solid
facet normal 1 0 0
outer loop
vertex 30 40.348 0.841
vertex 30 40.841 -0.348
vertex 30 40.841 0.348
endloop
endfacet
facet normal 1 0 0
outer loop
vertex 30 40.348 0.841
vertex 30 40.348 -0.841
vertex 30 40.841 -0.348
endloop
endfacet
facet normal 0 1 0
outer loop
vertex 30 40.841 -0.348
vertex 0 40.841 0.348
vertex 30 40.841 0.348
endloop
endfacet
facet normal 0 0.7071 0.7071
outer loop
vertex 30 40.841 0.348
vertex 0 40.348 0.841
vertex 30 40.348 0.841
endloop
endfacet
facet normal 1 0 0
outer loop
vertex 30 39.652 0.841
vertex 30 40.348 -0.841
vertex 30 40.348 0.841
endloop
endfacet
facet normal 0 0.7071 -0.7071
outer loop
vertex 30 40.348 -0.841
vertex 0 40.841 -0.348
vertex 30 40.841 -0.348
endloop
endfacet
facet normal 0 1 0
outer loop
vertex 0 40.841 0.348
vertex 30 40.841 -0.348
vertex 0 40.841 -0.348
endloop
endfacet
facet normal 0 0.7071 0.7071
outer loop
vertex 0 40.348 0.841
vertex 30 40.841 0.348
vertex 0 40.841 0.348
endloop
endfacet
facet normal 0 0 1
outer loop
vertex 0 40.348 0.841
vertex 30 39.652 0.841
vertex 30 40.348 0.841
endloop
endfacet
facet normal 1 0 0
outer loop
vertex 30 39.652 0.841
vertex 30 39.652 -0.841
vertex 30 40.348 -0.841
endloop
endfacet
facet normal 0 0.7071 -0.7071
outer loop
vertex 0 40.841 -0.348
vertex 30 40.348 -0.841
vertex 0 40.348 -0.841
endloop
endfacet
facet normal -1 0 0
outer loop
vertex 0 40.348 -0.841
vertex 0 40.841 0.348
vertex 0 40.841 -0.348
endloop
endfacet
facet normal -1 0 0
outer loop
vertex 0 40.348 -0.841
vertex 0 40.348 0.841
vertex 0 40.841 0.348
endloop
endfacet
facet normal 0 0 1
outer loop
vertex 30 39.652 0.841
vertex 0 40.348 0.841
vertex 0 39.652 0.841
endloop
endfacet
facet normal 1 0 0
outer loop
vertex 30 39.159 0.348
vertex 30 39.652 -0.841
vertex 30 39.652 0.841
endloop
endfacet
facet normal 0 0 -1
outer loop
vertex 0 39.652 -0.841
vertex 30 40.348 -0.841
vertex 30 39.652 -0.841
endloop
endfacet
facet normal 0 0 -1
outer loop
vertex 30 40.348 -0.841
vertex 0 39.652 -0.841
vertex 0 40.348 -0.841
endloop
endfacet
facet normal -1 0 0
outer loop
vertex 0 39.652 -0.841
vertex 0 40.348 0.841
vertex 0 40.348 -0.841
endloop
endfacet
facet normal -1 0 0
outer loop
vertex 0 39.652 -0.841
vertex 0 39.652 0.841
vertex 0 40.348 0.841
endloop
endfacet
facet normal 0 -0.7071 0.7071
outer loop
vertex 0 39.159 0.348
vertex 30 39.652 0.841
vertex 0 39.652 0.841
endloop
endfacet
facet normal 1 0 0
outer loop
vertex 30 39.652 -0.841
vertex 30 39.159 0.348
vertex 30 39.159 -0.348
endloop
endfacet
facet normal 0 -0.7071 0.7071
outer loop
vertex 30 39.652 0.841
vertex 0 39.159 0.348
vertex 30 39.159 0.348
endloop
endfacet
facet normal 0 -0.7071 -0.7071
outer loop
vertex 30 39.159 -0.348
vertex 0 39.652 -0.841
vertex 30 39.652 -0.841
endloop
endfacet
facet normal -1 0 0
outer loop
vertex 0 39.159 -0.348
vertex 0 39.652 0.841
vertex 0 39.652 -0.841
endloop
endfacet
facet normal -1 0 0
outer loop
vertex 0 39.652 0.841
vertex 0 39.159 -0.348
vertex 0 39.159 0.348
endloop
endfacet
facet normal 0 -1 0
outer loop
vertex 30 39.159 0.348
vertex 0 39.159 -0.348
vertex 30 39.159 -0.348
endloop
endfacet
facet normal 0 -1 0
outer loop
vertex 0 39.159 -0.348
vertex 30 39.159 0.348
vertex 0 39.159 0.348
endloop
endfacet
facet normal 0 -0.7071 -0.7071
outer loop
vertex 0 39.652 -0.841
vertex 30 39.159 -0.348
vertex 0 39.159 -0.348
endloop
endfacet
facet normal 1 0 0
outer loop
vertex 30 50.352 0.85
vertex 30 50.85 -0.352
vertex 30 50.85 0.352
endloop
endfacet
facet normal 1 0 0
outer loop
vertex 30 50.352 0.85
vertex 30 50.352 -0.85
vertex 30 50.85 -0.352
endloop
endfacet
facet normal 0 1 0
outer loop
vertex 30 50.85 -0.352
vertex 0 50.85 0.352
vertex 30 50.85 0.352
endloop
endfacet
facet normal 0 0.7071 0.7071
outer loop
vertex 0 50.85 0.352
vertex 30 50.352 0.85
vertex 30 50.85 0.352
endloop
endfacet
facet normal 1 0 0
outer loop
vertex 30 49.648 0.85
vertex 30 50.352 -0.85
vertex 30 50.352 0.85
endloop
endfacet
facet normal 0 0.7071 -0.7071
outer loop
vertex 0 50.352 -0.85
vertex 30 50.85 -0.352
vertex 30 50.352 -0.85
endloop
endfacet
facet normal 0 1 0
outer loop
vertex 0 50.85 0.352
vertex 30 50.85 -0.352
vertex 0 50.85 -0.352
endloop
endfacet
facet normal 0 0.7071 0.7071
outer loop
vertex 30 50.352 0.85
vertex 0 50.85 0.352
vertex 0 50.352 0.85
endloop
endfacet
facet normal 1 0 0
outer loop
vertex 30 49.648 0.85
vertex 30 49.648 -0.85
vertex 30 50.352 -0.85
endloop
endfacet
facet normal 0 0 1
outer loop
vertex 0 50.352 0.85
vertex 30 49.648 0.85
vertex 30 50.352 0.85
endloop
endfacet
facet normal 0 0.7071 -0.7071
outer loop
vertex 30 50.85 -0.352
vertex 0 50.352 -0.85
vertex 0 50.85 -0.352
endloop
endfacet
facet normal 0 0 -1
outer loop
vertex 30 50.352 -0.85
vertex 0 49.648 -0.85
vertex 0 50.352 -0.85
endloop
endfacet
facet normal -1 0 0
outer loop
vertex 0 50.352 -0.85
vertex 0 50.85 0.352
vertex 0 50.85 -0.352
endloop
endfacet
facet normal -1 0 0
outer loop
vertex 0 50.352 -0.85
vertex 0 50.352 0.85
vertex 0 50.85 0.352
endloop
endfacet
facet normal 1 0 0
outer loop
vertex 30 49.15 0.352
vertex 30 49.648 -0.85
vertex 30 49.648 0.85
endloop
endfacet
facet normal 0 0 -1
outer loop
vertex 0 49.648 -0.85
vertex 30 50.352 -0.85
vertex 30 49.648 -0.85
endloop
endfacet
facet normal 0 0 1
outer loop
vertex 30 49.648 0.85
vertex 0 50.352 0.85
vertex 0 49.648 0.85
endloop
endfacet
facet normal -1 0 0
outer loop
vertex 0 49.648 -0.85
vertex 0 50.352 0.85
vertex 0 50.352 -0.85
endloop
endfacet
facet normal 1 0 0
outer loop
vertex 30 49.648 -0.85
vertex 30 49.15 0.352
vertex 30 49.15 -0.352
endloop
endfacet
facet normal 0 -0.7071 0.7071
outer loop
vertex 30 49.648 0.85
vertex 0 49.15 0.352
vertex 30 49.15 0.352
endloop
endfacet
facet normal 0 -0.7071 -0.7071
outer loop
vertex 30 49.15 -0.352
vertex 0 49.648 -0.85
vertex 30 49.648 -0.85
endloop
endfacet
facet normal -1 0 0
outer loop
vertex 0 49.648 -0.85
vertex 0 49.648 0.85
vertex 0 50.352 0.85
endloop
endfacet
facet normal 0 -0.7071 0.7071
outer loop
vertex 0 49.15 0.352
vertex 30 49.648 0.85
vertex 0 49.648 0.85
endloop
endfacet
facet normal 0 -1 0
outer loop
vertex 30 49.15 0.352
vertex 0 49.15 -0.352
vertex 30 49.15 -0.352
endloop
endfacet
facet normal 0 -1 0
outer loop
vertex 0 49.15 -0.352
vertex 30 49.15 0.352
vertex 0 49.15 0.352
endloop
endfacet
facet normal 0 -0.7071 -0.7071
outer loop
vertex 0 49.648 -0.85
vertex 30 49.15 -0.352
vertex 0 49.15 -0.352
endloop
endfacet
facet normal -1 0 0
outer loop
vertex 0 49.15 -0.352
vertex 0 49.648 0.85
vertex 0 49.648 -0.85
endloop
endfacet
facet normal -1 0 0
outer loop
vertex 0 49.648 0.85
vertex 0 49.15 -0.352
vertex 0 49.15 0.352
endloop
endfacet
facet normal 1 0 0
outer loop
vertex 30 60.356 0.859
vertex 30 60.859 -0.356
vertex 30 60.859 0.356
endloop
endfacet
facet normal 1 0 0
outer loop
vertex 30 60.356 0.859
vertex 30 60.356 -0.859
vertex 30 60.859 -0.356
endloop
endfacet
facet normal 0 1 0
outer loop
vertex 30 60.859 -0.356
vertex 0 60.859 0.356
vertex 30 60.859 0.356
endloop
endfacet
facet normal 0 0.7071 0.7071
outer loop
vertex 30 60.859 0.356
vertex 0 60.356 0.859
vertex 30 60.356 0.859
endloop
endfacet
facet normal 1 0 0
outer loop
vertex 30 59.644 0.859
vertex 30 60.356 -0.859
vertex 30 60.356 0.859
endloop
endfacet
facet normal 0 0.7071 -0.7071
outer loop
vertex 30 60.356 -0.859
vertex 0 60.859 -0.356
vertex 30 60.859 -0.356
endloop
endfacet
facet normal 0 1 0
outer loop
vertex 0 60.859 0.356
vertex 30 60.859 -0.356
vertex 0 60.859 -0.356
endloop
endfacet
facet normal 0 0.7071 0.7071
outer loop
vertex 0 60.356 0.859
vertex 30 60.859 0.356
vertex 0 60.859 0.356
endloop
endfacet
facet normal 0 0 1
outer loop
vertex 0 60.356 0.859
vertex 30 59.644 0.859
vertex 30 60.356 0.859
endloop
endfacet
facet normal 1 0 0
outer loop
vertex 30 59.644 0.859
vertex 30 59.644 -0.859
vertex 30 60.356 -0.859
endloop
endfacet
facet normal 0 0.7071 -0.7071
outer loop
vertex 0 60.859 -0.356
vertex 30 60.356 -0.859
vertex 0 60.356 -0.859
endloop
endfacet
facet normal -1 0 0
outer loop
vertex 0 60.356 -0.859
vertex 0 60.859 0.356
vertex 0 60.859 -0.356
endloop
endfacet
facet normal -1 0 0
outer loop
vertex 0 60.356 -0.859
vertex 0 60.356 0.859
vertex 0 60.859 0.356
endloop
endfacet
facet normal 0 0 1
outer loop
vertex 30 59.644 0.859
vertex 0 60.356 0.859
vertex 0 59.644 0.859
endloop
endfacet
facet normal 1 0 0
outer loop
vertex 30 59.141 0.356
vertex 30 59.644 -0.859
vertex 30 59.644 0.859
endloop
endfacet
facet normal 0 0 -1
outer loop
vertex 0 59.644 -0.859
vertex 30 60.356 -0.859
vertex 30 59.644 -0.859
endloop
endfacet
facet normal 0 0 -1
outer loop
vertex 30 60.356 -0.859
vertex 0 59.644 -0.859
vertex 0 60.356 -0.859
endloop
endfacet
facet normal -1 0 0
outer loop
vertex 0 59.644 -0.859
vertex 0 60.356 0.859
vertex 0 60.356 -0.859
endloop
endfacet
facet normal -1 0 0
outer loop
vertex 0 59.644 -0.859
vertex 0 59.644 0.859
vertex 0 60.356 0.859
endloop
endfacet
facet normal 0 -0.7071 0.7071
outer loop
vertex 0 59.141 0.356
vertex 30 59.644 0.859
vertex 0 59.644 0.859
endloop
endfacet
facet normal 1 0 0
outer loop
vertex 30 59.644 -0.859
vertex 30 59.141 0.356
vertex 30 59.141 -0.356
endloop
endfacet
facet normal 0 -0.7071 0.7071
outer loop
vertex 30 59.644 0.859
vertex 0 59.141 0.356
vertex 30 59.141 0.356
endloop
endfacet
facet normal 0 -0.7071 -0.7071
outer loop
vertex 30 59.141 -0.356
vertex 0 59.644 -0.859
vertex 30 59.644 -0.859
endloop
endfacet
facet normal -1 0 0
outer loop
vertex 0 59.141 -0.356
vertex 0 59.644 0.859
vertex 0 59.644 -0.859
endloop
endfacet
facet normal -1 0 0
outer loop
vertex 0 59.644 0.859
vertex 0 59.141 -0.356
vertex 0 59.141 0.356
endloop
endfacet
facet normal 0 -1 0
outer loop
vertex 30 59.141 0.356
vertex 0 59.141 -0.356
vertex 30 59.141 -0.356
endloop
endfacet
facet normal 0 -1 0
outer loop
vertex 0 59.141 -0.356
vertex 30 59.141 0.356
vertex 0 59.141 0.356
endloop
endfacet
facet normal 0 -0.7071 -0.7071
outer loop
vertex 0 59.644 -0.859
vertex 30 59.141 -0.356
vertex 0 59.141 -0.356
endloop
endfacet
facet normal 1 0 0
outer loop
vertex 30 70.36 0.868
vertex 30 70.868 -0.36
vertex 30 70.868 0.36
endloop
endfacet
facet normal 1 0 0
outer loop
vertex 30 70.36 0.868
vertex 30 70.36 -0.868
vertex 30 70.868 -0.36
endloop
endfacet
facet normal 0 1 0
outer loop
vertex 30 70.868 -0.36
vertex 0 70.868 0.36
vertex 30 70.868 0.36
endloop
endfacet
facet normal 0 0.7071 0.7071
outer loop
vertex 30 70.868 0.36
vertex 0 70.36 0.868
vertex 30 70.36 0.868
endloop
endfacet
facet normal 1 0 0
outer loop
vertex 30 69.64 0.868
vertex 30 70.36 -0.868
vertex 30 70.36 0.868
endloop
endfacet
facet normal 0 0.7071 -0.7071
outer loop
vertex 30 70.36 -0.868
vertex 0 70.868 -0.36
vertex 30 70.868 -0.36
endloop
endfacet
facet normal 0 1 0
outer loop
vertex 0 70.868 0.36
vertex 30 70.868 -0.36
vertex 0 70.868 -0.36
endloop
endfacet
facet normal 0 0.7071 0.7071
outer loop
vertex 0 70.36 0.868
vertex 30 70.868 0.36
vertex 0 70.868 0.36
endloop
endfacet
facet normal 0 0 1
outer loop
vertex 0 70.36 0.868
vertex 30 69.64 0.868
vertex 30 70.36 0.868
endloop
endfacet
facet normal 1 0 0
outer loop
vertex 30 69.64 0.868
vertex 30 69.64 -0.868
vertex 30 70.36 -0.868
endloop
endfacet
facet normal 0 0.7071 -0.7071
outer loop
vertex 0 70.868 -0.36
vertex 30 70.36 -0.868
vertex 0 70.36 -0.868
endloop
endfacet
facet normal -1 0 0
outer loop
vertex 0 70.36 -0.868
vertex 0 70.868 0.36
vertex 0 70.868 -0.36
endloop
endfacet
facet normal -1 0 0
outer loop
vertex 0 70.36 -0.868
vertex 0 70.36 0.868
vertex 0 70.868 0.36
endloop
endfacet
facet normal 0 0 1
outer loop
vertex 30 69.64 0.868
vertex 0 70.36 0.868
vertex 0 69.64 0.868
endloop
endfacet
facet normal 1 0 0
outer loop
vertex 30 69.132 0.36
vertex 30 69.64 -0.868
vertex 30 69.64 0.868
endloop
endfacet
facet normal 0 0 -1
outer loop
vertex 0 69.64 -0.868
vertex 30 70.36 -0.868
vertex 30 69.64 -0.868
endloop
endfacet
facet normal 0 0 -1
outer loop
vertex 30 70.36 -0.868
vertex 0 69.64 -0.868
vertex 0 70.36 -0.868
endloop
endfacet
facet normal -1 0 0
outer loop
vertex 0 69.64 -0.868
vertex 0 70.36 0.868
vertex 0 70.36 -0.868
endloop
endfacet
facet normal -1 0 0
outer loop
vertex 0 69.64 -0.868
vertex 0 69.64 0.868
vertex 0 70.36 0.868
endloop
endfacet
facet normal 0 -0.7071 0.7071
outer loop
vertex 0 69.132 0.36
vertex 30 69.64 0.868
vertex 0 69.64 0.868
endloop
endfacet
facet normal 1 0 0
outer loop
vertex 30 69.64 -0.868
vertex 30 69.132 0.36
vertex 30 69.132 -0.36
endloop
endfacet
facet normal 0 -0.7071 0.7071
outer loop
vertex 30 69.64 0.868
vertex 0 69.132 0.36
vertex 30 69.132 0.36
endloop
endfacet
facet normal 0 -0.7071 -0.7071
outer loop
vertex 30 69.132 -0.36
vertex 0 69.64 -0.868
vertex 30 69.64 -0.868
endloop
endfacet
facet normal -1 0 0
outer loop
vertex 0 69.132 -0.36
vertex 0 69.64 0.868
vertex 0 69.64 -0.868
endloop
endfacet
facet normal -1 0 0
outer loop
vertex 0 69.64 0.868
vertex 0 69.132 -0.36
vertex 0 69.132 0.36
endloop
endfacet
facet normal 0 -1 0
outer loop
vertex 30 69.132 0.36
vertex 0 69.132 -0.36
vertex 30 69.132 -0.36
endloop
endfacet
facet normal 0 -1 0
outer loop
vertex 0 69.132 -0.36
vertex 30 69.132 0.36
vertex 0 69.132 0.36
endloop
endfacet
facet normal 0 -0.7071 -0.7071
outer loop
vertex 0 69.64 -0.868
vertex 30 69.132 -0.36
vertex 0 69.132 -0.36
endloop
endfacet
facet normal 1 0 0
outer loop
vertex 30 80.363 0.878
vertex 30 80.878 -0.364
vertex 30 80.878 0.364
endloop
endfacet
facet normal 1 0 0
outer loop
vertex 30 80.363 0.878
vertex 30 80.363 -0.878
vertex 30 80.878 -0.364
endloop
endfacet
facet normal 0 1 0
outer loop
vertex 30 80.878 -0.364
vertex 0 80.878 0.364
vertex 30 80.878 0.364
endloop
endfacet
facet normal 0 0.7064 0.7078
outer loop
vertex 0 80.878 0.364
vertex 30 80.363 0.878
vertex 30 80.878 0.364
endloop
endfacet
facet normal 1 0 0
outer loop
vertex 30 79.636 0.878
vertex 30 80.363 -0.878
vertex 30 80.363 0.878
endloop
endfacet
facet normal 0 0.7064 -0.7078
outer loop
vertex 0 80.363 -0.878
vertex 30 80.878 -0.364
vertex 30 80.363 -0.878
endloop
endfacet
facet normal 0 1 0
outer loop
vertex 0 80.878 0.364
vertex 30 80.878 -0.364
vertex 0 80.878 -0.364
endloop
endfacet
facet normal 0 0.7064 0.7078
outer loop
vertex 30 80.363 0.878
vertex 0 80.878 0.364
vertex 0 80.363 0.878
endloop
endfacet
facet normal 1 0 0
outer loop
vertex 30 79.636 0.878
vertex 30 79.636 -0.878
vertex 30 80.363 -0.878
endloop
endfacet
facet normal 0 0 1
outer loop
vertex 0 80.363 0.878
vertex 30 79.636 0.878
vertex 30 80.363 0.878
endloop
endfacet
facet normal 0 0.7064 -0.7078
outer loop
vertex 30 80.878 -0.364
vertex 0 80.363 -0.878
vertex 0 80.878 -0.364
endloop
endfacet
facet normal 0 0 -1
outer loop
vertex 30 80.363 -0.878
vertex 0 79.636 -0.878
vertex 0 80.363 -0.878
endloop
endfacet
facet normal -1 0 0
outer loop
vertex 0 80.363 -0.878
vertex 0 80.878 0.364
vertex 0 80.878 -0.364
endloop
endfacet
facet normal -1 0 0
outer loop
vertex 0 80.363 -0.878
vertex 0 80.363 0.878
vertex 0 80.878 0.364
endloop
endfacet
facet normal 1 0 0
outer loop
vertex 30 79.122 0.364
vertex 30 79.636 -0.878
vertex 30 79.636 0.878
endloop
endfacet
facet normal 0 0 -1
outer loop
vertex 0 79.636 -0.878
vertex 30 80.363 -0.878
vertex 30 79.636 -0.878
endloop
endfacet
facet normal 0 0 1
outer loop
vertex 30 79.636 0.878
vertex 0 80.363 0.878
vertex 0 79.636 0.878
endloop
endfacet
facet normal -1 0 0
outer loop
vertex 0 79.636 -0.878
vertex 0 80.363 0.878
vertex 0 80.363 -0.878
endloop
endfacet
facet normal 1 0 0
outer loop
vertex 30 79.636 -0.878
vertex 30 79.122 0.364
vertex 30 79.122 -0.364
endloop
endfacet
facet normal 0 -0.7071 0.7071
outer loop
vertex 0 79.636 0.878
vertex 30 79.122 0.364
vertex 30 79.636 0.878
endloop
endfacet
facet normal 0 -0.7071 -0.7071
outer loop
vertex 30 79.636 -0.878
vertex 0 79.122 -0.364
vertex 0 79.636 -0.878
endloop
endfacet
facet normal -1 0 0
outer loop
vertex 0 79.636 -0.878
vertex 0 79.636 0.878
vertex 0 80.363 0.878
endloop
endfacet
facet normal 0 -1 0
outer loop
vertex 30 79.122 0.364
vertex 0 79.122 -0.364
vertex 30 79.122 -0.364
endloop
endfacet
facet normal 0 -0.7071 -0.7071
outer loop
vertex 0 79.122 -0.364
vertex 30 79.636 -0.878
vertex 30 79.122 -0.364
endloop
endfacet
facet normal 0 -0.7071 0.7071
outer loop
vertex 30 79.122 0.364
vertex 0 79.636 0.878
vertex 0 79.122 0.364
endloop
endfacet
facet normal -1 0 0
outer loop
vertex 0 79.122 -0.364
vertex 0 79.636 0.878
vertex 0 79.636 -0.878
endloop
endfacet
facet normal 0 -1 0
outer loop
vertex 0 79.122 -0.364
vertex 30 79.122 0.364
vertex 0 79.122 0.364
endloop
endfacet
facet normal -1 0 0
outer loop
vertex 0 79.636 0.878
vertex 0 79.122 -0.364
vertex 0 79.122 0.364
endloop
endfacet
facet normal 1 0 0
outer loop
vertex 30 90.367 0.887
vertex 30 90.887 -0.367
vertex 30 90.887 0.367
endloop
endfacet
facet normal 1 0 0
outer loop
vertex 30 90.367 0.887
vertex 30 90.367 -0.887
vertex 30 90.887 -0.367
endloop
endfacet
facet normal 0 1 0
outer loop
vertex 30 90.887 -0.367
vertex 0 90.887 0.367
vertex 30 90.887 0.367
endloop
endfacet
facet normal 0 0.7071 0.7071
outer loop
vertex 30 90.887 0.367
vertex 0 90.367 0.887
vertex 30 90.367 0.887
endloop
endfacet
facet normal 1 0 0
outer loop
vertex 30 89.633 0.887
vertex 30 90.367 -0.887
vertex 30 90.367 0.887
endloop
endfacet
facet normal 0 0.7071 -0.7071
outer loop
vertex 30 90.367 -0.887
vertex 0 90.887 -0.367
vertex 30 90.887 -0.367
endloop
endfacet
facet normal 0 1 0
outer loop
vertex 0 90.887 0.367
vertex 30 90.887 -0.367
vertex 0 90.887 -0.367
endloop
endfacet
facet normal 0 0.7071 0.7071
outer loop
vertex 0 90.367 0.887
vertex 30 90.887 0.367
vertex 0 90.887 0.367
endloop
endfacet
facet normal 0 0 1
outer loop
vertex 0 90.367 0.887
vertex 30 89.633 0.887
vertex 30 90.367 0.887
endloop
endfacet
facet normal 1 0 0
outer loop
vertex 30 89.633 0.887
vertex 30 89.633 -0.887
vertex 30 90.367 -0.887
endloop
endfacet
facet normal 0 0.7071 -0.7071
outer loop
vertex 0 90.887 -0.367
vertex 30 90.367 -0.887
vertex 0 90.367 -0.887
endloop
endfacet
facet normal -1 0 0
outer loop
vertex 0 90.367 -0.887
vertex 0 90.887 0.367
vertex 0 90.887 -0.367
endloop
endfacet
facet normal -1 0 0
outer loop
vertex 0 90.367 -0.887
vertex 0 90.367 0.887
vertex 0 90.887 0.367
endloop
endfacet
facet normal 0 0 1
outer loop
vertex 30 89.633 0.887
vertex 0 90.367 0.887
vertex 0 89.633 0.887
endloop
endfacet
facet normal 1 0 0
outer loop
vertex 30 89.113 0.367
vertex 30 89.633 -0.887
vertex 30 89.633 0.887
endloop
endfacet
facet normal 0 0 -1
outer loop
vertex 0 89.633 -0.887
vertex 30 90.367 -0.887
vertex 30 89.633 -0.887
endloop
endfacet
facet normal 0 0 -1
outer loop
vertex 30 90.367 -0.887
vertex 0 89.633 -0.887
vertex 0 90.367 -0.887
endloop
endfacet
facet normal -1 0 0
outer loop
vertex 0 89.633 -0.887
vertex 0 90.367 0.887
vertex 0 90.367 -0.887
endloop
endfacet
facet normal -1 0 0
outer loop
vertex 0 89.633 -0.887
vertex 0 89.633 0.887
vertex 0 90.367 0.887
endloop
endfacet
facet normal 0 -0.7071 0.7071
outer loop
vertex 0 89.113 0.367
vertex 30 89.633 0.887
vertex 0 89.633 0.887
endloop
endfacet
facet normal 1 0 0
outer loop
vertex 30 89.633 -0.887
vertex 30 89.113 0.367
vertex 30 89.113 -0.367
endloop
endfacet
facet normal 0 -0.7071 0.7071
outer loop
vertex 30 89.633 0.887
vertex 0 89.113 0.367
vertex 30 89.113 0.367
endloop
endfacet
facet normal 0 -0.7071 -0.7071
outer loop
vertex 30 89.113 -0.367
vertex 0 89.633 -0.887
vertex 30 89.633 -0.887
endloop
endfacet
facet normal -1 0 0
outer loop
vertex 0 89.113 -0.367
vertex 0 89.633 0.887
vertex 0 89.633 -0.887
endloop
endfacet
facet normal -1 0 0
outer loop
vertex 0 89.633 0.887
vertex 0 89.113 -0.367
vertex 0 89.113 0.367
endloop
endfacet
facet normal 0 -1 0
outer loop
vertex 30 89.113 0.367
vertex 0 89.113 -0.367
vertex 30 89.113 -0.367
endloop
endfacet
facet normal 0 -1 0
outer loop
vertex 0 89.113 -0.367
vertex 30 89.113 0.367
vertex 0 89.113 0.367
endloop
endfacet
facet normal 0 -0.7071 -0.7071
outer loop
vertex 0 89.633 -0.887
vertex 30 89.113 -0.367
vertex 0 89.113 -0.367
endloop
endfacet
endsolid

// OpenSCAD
height=30;

translate([0,40,0])
rotate([0,90,0])
rotate([0,0,67.5])
cylinder(h=height, r=0.91, $fn=8);

translate([0,50,0])
rotate([0,90,0])
rotate([0,0,67.5])
cylinder(h=height, r=0.92, $fn=8);

translate([0,60,0])
rotate([0,90,0])
rotate([0,0,67.5])
cylinder(h=height, r=0.93, $fn=8);

translate([0,70,0])
rotate([0,90,0])
rotate([0,0,67.5])
cylinder(h=height, r=0.94, $fn=8);

translate([0,80,0])
rotate([0,90,0])
rotate([0,0,67.5])
cylinder(h=height, r=0.95, $fn=8);

translate([0,90,0])
rotate([0,90,0])
rotate([0,0,67.5])
cylinder(h=height, r=0.96, $fn=8);




//translate([-2.5,0,0.18])
//cube([5,10,2], center=true);
//translate([22.5,0,0.18])
//cube([5,10,2], center=true);
//translate([0,30,0])
//rotate([0,90,0])
//rotate([0,0,67.5])
//cylinder(h=30, r=0.85, $fn=8);
